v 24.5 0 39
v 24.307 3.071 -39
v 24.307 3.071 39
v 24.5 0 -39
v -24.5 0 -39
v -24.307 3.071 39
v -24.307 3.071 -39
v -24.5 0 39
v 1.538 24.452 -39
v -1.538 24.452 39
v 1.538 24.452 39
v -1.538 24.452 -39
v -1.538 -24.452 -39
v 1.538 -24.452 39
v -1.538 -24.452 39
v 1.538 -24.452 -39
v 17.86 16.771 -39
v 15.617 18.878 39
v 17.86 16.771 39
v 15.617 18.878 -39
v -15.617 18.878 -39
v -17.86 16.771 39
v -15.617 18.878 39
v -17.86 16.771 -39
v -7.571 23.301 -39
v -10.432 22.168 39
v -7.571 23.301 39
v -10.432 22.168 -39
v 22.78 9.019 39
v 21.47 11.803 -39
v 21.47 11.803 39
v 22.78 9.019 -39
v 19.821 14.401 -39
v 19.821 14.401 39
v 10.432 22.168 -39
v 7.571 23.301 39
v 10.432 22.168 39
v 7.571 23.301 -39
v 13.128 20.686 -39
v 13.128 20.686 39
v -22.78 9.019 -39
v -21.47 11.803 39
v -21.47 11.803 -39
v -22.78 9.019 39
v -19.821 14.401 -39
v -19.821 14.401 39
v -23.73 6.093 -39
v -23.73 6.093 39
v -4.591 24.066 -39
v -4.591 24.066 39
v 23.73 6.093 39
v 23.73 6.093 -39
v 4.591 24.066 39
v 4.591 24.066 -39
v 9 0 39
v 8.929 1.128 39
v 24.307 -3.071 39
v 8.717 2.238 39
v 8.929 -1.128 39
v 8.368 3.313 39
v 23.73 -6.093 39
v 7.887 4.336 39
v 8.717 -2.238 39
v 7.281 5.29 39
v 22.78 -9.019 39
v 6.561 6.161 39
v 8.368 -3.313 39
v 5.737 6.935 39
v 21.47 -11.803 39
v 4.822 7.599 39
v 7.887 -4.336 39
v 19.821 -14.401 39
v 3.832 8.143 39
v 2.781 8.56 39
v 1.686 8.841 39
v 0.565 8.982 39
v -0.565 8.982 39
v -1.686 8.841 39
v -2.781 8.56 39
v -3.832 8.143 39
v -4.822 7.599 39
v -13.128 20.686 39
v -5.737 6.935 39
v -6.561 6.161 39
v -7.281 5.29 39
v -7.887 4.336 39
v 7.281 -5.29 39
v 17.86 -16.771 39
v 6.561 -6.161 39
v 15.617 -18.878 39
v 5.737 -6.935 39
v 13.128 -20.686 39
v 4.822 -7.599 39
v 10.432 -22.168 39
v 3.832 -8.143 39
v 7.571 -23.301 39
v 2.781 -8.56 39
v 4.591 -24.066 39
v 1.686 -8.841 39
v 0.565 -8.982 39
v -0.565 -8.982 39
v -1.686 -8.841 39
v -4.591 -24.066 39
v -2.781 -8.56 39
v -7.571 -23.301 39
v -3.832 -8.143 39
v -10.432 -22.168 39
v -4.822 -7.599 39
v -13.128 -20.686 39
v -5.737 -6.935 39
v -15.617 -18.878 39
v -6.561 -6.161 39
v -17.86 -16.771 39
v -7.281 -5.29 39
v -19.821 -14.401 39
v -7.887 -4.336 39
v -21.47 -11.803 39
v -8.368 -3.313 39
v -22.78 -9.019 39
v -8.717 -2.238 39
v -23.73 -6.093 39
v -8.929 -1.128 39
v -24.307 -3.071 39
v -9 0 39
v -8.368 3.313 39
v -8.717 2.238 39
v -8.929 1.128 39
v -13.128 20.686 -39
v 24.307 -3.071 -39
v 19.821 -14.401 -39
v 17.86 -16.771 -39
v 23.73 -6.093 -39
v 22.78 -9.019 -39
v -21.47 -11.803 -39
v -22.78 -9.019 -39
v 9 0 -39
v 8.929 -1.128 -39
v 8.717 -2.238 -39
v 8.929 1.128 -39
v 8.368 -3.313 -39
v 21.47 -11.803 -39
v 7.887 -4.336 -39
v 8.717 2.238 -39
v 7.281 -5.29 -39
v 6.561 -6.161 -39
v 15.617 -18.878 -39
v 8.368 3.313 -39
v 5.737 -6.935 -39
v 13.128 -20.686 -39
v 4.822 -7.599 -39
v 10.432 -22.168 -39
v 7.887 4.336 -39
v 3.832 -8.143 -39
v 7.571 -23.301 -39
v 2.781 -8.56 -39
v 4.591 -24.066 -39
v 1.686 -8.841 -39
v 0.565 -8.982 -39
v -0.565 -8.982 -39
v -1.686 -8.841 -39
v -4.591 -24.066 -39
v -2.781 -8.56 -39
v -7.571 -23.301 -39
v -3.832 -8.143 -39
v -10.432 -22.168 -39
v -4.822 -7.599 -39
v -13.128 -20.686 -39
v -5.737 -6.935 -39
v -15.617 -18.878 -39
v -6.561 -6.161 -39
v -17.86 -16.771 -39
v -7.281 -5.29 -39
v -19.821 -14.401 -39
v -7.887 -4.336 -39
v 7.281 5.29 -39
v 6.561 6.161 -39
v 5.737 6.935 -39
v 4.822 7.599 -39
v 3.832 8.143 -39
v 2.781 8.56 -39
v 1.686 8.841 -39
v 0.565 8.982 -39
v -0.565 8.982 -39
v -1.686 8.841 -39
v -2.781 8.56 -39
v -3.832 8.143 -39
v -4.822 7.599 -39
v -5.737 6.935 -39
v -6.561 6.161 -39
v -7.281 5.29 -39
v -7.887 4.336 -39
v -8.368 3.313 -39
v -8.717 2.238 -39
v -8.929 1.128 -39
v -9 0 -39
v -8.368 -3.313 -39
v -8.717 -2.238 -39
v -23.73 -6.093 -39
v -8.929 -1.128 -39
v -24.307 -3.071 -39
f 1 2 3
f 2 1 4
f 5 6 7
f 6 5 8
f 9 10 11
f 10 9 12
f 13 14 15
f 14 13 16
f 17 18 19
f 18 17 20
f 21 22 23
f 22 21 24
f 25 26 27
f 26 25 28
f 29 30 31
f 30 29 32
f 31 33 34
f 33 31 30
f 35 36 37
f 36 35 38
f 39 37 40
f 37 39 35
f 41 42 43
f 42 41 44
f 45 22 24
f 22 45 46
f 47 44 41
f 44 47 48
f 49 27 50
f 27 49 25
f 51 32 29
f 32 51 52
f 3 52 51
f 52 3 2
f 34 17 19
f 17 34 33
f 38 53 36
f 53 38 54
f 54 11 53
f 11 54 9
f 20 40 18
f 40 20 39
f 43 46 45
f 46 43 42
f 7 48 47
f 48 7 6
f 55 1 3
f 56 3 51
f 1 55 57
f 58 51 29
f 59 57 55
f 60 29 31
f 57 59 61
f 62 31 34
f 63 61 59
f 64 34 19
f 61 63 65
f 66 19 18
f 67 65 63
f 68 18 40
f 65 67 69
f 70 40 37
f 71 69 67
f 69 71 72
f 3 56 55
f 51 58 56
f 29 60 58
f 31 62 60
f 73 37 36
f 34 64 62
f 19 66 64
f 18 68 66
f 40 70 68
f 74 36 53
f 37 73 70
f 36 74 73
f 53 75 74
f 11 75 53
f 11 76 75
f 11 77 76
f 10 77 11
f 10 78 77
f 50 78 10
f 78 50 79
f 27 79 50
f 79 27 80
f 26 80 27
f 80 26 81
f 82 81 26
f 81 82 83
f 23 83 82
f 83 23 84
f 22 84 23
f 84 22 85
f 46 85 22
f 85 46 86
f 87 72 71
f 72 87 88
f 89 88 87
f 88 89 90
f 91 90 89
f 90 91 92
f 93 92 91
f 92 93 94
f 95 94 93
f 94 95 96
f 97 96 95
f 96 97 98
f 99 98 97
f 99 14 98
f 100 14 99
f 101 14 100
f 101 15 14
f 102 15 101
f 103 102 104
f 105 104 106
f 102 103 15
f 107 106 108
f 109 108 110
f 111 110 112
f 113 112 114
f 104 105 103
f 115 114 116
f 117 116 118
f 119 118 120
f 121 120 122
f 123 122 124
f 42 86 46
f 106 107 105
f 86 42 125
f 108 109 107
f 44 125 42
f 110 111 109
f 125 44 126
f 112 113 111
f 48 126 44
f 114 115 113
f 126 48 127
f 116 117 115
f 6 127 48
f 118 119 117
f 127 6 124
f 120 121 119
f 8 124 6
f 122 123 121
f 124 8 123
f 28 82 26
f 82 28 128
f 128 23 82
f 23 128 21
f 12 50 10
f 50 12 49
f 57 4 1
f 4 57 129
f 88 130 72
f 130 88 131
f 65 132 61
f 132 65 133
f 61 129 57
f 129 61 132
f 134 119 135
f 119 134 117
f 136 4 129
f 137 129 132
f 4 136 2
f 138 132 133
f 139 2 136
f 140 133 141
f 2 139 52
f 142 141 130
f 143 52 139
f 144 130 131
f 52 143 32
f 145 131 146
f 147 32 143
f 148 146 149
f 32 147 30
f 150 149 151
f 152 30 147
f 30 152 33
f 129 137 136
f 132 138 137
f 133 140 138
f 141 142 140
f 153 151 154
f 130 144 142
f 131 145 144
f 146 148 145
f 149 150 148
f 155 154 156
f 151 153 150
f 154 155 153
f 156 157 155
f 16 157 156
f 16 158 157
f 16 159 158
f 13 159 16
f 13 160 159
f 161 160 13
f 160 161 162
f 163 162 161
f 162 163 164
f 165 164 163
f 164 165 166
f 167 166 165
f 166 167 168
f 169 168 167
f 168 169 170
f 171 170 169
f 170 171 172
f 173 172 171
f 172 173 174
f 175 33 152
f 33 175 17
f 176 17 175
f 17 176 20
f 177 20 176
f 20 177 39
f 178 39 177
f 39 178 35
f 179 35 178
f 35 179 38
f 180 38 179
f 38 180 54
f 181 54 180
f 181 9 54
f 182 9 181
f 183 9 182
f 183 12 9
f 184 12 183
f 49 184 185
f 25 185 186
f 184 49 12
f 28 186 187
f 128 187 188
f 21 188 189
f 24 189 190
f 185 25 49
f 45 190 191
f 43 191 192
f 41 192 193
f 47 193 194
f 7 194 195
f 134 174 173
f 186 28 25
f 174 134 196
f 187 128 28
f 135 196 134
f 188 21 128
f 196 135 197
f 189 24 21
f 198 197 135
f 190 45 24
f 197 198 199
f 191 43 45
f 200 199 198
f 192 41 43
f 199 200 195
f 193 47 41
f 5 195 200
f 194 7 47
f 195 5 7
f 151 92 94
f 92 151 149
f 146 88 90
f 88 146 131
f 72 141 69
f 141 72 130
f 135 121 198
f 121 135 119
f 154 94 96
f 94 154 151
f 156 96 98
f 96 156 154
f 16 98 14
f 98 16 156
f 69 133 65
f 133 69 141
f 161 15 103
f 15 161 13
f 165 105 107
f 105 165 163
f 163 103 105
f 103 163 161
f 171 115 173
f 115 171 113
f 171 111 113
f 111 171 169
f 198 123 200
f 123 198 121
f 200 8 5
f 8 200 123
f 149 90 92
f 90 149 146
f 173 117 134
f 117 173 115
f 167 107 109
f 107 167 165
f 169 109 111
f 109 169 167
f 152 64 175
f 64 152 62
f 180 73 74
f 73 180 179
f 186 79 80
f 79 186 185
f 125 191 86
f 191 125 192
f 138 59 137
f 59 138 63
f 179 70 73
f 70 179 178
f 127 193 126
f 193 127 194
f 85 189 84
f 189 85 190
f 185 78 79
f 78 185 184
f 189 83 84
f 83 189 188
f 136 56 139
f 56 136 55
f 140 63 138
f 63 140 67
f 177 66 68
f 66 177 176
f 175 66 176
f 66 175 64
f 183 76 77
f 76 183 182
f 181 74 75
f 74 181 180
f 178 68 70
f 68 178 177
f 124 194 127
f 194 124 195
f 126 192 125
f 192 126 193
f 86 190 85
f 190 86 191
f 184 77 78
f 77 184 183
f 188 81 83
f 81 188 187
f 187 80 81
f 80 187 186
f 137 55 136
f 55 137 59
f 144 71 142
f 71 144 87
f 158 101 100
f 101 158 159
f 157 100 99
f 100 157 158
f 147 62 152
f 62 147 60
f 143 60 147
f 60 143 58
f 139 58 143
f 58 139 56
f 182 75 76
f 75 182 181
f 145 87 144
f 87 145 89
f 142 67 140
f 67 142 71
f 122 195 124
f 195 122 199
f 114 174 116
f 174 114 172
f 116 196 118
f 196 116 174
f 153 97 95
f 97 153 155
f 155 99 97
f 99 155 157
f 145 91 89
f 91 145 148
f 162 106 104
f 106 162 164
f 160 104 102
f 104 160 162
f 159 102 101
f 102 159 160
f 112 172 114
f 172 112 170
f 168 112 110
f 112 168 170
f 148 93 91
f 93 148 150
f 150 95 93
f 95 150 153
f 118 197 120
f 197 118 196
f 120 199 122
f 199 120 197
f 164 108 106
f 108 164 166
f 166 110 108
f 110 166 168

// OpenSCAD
$fn = 50;


difference() {
	union() {
		translate(v = [0, 0, -39.0000000000]) {
			cylinder(h = 78, r = 24.5000000000);
		}
	}
	union() {
		translate(v = [0, 0, -100.0000000000]) {
			cylinder(h = 200, r = 9);
		}
	}
}
